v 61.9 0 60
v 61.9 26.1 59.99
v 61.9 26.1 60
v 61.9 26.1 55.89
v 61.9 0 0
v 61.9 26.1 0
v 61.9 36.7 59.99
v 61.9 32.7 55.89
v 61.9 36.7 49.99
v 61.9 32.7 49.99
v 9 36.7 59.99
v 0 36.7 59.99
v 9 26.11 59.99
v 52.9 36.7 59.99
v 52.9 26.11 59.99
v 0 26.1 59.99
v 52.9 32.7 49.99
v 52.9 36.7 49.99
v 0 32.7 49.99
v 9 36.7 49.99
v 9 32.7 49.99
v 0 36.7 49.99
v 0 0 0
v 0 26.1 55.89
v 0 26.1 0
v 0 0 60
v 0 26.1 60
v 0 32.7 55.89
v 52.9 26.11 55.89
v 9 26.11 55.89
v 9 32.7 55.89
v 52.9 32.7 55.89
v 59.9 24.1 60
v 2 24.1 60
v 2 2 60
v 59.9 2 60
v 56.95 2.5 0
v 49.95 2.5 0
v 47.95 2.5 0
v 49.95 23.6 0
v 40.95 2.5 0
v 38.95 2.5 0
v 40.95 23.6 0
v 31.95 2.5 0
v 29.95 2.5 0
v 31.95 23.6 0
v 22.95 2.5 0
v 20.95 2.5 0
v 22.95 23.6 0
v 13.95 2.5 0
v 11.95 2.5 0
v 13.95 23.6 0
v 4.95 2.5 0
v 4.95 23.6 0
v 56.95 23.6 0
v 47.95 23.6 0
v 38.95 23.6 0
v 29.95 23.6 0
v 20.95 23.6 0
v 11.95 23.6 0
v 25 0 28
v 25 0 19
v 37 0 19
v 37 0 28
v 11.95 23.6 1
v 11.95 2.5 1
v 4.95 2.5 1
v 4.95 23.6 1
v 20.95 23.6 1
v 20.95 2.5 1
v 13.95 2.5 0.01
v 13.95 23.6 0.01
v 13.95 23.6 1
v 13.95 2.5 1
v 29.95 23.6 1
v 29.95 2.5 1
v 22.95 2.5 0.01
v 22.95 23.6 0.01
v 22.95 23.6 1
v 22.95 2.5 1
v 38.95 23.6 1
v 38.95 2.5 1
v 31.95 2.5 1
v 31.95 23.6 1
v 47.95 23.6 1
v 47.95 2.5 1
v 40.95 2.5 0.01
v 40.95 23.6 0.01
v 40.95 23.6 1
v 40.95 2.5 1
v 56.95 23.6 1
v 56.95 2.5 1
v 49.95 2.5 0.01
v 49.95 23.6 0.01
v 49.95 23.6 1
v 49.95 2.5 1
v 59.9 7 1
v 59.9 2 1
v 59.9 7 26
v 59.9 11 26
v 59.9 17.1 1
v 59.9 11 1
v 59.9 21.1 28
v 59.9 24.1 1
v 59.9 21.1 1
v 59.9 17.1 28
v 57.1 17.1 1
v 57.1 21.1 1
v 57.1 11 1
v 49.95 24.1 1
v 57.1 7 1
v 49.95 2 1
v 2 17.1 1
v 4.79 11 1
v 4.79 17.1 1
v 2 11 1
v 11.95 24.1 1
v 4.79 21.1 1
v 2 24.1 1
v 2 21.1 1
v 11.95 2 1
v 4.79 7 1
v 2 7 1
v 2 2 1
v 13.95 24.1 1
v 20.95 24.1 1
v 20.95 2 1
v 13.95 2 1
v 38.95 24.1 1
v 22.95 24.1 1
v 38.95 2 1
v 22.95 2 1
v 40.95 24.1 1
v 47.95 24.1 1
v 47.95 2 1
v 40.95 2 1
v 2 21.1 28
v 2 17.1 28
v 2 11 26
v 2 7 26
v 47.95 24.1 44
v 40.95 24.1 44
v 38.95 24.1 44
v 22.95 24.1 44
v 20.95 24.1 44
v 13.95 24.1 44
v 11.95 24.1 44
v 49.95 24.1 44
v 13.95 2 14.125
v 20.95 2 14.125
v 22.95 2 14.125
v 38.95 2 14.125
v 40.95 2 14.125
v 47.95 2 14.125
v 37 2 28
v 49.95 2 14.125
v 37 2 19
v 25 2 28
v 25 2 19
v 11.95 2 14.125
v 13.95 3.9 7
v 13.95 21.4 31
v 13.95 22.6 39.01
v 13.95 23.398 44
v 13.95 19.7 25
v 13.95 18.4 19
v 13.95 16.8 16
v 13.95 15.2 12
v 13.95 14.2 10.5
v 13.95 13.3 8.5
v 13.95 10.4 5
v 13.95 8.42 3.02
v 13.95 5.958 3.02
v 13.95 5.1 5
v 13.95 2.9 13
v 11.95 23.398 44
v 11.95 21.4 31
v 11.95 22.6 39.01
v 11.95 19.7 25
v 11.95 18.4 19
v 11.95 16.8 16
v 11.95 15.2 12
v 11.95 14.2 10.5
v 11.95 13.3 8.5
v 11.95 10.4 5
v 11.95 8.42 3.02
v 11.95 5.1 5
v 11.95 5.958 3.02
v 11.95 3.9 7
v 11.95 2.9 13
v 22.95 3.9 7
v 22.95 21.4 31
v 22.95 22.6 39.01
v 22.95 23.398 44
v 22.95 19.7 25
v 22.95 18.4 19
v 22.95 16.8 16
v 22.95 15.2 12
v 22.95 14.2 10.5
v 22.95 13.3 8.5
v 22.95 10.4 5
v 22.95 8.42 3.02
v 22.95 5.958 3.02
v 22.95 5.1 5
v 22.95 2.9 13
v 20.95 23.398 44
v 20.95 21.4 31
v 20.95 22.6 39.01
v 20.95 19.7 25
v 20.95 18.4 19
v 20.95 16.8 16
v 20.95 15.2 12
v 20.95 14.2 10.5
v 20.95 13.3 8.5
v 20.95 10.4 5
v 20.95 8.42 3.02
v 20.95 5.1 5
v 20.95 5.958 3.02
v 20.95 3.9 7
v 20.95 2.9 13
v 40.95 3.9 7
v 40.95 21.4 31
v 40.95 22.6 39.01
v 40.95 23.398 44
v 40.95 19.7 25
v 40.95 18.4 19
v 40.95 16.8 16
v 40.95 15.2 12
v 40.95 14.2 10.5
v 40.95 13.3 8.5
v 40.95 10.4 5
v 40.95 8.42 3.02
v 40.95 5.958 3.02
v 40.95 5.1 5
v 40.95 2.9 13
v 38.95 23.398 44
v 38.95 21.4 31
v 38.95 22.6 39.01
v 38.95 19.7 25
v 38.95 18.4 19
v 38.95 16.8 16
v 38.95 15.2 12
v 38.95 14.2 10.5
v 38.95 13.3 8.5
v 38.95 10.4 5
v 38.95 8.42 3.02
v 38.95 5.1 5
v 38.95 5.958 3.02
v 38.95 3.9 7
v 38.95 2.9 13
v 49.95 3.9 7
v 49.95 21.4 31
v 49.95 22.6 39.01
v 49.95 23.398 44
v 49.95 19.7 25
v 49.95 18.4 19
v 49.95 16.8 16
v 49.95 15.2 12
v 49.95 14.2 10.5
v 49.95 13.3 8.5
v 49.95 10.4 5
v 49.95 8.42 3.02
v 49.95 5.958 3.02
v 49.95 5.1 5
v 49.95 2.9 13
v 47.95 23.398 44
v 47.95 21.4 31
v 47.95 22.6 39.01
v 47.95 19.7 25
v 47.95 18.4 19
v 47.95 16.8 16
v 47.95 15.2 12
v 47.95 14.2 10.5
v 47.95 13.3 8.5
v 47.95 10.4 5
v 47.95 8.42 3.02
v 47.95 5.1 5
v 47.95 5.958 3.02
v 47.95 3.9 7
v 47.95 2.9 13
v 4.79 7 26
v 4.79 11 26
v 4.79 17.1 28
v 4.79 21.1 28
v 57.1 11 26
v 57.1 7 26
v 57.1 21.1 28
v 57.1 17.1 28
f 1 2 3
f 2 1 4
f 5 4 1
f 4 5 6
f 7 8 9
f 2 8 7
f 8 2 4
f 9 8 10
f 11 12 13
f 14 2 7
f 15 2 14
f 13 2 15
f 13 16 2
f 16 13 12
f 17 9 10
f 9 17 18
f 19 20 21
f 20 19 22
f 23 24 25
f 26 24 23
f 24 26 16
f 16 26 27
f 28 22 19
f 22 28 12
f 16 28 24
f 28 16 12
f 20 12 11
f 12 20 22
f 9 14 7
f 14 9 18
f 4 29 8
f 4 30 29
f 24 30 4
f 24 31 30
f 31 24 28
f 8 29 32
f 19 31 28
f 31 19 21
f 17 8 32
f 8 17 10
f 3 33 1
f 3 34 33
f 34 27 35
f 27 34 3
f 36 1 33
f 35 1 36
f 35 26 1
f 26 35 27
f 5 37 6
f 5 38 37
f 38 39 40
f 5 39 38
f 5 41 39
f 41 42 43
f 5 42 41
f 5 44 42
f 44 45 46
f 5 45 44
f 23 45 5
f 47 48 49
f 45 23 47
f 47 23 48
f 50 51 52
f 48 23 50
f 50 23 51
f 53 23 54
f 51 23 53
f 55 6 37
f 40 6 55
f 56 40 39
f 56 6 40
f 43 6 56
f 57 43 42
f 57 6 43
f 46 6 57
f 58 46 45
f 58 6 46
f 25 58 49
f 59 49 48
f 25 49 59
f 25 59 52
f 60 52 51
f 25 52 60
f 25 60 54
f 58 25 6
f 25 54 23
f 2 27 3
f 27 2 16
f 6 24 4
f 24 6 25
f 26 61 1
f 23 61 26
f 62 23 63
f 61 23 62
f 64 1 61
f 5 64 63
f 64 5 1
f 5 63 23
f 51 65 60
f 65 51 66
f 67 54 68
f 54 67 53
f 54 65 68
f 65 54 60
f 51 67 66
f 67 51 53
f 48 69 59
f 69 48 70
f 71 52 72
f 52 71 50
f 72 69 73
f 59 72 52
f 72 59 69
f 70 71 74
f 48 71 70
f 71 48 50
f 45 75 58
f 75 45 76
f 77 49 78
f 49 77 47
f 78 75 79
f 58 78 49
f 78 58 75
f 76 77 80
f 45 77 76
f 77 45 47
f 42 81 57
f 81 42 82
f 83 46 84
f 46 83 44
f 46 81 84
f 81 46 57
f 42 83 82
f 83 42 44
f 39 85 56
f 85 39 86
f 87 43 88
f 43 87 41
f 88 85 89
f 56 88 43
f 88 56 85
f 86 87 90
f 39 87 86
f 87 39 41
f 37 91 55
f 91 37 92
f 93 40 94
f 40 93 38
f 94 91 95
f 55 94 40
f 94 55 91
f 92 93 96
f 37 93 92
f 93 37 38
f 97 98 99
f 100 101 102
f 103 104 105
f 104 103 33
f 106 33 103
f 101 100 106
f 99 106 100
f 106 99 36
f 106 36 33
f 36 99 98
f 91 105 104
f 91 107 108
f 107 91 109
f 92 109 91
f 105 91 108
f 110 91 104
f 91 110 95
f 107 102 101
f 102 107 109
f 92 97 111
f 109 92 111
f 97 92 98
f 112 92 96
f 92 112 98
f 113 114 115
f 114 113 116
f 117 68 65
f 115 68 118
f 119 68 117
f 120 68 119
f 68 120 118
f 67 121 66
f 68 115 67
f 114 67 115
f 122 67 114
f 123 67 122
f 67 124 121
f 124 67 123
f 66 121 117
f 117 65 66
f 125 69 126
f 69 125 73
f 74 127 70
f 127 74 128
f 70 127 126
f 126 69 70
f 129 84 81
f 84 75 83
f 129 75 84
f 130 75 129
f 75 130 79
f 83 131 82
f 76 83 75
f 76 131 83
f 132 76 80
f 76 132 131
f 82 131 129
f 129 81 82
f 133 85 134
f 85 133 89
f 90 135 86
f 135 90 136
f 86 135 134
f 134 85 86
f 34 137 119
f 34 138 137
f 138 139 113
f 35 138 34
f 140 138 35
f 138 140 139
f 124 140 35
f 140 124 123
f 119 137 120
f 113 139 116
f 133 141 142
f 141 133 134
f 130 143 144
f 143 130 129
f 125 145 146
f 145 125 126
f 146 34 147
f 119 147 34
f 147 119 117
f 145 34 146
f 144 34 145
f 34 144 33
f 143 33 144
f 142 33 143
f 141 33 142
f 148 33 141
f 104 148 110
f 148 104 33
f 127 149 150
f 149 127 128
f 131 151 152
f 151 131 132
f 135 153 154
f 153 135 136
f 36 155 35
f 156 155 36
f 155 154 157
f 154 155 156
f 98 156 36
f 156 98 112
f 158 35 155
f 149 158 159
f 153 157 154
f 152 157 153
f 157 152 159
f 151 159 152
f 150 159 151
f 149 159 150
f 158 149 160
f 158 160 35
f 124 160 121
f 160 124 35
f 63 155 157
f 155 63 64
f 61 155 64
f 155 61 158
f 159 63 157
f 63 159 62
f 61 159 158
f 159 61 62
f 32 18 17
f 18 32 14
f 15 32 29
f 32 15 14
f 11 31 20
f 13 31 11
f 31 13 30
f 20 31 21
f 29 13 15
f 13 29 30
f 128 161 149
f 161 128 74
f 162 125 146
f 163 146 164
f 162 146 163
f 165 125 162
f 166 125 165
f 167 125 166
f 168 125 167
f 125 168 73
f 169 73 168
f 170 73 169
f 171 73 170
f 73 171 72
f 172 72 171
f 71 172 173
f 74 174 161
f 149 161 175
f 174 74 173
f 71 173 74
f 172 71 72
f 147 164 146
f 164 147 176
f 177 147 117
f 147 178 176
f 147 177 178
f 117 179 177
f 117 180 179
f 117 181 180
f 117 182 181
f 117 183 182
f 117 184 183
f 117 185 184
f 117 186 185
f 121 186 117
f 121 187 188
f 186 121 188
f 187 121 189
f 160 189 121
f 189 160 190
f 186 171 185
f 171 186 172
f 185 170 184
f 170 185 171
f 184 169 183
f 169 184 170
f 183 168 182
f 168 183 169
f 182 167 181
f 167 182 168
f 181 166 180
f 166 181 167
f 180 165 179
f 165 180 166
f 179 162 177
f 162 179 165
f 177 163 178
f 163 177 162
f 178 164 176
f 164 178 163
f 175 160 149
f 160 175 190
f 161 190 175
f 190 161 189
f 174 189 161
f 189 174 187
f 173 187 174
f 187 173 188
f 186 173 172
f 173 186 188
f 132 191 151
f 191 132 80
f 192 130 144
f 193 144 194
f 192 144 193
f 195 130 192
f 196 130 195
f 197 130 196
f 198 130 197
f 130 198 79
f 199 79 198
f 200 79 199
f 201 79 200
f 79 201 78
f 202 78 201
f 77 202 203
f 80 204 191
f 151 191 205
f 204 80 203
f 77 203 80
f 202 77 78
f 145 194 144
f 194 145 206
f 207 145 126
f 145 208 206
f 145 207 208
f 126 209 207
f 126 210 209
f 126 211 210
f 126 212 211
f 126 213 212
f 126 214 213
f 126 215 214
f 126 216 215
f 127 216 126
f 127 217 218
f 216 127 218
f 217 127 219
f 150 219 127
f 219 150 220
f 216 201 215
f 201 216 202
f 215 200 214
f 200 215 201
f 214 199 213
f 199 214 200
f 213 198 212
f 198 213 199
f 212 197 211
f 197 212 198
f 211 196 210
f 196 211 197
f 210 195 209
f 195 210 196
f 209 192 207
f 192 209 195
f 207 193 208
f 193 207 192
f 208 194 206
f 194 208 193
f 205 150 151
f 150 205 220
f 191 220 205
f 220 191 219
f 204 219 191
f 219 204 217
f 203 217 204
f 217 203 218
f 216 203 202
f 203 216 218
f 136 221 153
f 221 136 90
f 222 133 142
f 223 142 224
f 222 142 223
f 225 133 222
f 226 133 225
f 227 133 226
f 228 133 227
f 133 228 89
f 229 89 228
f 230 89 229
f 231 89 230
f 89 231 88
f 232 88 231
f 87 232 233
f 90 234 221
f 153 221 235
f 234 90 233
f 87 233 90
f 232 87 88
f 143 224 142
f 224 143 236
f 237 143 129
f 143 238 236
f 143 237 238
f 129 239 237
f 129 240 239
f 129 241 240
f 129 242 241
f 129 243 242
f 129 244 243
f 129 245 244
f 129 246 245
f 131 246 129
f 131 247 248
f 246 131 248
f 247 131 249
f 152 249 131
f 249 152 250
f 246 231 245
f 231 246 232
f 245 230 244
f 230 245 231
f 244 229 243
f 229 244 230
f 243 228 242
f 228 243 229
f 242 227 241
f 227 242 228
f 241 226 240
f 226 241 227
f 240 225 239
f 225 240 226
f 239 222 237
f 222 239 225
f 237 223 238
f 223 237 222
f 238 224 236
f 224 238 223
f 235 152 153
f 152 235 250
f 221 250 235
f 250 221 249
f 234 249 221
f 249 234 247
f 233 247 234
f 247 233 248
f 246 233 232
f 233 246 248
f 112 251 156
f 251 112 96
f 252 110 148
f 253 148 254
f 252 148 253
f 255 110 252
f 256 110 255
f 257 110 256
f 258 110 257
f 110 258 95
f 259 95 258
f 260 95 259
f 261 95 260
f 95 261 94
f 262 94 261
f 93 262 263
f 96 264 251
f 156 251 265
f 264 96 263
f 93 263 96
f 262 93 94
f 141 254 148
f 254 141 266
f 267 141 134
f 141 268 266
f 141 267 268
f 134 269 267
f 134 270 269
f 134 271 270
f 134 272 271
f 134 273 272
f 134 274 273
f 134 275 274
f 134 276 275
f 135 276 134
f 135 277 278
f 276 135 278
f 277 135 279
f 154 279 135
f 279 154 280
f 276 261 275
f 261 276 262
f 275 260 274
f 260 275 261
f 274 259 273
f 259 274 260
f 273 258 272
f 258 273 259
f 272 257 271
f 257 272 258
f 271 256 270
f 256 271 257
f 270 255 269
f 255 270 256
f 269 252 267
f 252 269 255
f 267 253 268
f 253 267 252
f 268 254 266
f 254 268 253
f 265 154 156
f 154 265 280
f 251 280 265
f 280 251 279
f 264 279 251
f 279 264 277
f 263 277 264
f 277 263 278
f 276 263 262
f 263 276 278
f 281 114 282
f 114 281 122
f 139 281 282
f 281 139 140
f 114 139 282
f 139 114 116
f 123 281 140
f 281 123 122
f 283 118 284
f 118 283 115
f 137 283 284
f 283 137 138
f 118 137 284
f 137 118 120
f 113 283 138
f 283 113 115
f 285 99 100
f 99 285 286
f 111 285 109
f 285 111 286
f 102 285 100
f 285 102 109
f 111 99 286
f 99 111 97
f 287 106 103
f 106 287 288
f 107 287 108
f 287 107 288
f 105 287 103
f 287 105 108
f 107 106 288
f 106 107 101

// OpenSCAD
railgreen = "#227711";
railblue = "#7788cc";

// parametric setup:
wall_thickness = 2;
floor_thickness = 1;
epsilon = 0.01;
mount_rail_height = 64; // This is specific to your particular hanging surface


m_inner_x = 57.9;
m_inner_y = 22.1;
case_height = 60;
case_depth = m_inner_y + (2 * wall_thickness);
case_width = m_inner_x + (2 * wall_thickness);

hook_top_thickness = 4;
hook_height = 10;
hook_width = 9;
hook_count = 2;
plate_thickness = 6.7; // how wide is the "wall" on which you'll be hanging this holder?
hook_y = plate_thickness + hook_top_thickness;

bottom_vent_count = 6;
bottom_vent_width = 7;
bottom_vent_spacing = 2;
bottom_vent_border_thickness = 0.5;

hook = true;

// Coordinates of an approximate contour / profile for the Magic Mouse:
mouse_profile_max_z = 43;
mouse_profile = [[-11, mouse_profile_max_z + epsilon], 
                 [-10.9, 15], [-8.5, 12], [-8.0, 9], [-7.5, 6], [-6.3, 4], 
                 [-5, 1], [-4,0], [-3, 2], [-2, 3], [-1, 4], [1.9, 7.5], 
                 [2.8, 9.5], [3.8, 11.0], [5.4, 15], [7, 18], [8.3, 24], [10, 30],
                 [11.2, 38.01], [12, mouse_profile_max_z + epsilon]
                ];


// The xshift value offsets the vents from the x-sides to ensure vent placement and spacing
// work nicely. The wall thickness (from one side) is added to the remainder of 
// ( (count of vents) * (vent width) + (count of vents + 1) * (vent gap width) ) / 2
xshift= wall_thickness + bottom_vent_spacing +
   (m_inner_x - (bottom_vent_count * bottom_vent_width) - 
   (bottom_vent_count + 1) * bottom_vent_spacing)/2;


// polygon profile of the fattest slice of the front of the Magic Mouse II:
module magic_mouse_profile() {
  rotate([90,0,90]) {
    linear_extrude(height=bottom_vent_spacing + 2 * epsilon) {
      polygon(points=mouse_profile);
    }
  }
}


function hook_v_off(case_height=case_height, mount_rail_height=mount_rail_height) = 
  (case_height - mount_rail_height <= 0) ? 0 : case_height - mount_rail_height; 


module body_inset(xshift) {
    union() {
    // Cut away the pocket for the mouse:
    translate([wall_thickness, wall_thickness, floor_thickness]){
      color("saddlebrown") {
        cube([m_inner_x, m_inner_y, case_height]);
      }
    }
    
    // Cut away the charging port hole:
    translate([25, -epsilon, 19]) {
      cube([12, wall_thickness + (2 * epsilon), 9]);
    }
    
    // Cut slots in the bottom so dust doesn't collect:
    for(xval = [0:1:bottom_vent_count - 1]) {
      translate([xshift + xval * (bottom_vent_width + bottom_vent_spacing),
                 wall_thickness + bottom_vent_border_thickness,
                 -epsilon
                ]) {
        cube([bottom_vent_width, m_inner_y - (2 * bottom_vent_border_thickness), 2]);
      }
    }

    // No need for a solid rail; use discrete "hooks" by cutting them out:
    gap_width = (case_width - hook_width * hook_count) / (hook_count - 1) ;
    if (hook==true) {
      for(xval = [0:1:(hook_count - 2)]) {
        translate([hook_width + (hook_width + gap_width) * xval, 
                   case_depth + epsilon,
                   case_height - hook_height - hook_top_thickness - hook_v_off()
                  ]) {
          cube([gap_width, hook_y + epsilon , hook_height + hook_top_thickness]);
        }
      }
    }
  }
}


module all_the_rails(xshift) {
  // inner rails, but skip the middle rail because of the Lightning charge port.
  // Also skip the outermost rails because there will be straight outer rails, below.
  for(xval = [1:1:(bottom_vent_count)/2 - 1]) {
    translate([xshift + xval * (bottom_vent_width + bottom_vent_spacing) - bottom_vent_spacing, 
               m_inner_y + wall_thickness - 12.7,
               floor_thickness]) {
      color(railgreen) {
        contour_rail();
      }
    }
  }
  starting_x = ((bottom_vent_count)/2) + 1;
  for(xval = [starting_x:1:bottom_vent_count - 1]) {
    translate([xshift + xval * (bottom_vent_width + bottom_vent_spacing) - bottom_vent_spacing, 
               m_inner_y + wall_thickness - 12.7,
               floor_thickness]) {
      color(railgreen) {
        contour_rail();
      }
    }
  }
  
  // Make outer rails to accommodate the narrower profile on the edges of the mouse:
  color(railblue) {
    translate([wall_thickness - epsilon - 0.2,
               wall_thickness + 5,
               floor_thickness
              ]) {
      cube([bottom_vent_spacing + 1 , 4.0, 24 + floor_thickness]) ; 
      translate([0, m_inner_y - 12, 0]) { 
        cube([bottom_vent_spacing + 1, 4, 26 + floor_thickness]) ; 
      }
    }
    translate([wall_thickness + m_inner_x - bottom_vent_spacing + 0.2 - 1,
               wall_thickness + 5,
               floor_thickness]) {
      cube([bottom_vent_spacing + 1, 4.0, 24 + floor_thickness]) ;
      translate([0, m_inner_y - 12, 0]) {
        cube([bottom_vent_spacing + 1, 4, 26 + floor_thickness]) ;
      }
    }
  }
}


// contoured ribs to hold the mouse, rather than only the bottom and tallest point on top.
module contour_rail() {
  translate([0, -11, -0.99]) {
    cube([bottom_vent_spacing, m_inner_y + 3, 3.01]);
    translate([0,-2,0]) {
      //cube([bottom_vent_spacing, 2, mouse_profile_max_z]);
    }
  }
  difference() {
    translate([0,-11,0]) {
      cube([bottom_vent_spacing,m_inner_y + 3, mouse_profile_max_z]);
    }
    translate([-epsilon, 0, 0]) {
      magic_mouse_profile();
    }
  }  
}



module solid_outline() {
  union() {
    cube([case_width,
          case_depth, 
          case_height]);
    if (hook == true) {
      mount_rail();  
    }
  }
}


module mount_rail() {
  translate([0, case_depth - 0.1, case_height - hook_height - epsilon - hook_v_off()]) {
    difference(){
      cube([case_width, hook_y, hook_height]);
      translate([- epsilon, 0, -0.1]) {
        color("yellow") {
          cube([case_width + (2 * epsilon), 
                plate_thickness,
                hook_height - hook_top_thickness
               ]);
        }
      }
    }
  }
}


module complete_model(xshift, include_rails=true) {
  difference() {
    solid_outline();
    body_inset(xshift);
  }
  if(include_rails==true) {
    all_the_rails(xshift);
  }
}


// main:

complete_model(xshift=xshift, include_rails=true);
